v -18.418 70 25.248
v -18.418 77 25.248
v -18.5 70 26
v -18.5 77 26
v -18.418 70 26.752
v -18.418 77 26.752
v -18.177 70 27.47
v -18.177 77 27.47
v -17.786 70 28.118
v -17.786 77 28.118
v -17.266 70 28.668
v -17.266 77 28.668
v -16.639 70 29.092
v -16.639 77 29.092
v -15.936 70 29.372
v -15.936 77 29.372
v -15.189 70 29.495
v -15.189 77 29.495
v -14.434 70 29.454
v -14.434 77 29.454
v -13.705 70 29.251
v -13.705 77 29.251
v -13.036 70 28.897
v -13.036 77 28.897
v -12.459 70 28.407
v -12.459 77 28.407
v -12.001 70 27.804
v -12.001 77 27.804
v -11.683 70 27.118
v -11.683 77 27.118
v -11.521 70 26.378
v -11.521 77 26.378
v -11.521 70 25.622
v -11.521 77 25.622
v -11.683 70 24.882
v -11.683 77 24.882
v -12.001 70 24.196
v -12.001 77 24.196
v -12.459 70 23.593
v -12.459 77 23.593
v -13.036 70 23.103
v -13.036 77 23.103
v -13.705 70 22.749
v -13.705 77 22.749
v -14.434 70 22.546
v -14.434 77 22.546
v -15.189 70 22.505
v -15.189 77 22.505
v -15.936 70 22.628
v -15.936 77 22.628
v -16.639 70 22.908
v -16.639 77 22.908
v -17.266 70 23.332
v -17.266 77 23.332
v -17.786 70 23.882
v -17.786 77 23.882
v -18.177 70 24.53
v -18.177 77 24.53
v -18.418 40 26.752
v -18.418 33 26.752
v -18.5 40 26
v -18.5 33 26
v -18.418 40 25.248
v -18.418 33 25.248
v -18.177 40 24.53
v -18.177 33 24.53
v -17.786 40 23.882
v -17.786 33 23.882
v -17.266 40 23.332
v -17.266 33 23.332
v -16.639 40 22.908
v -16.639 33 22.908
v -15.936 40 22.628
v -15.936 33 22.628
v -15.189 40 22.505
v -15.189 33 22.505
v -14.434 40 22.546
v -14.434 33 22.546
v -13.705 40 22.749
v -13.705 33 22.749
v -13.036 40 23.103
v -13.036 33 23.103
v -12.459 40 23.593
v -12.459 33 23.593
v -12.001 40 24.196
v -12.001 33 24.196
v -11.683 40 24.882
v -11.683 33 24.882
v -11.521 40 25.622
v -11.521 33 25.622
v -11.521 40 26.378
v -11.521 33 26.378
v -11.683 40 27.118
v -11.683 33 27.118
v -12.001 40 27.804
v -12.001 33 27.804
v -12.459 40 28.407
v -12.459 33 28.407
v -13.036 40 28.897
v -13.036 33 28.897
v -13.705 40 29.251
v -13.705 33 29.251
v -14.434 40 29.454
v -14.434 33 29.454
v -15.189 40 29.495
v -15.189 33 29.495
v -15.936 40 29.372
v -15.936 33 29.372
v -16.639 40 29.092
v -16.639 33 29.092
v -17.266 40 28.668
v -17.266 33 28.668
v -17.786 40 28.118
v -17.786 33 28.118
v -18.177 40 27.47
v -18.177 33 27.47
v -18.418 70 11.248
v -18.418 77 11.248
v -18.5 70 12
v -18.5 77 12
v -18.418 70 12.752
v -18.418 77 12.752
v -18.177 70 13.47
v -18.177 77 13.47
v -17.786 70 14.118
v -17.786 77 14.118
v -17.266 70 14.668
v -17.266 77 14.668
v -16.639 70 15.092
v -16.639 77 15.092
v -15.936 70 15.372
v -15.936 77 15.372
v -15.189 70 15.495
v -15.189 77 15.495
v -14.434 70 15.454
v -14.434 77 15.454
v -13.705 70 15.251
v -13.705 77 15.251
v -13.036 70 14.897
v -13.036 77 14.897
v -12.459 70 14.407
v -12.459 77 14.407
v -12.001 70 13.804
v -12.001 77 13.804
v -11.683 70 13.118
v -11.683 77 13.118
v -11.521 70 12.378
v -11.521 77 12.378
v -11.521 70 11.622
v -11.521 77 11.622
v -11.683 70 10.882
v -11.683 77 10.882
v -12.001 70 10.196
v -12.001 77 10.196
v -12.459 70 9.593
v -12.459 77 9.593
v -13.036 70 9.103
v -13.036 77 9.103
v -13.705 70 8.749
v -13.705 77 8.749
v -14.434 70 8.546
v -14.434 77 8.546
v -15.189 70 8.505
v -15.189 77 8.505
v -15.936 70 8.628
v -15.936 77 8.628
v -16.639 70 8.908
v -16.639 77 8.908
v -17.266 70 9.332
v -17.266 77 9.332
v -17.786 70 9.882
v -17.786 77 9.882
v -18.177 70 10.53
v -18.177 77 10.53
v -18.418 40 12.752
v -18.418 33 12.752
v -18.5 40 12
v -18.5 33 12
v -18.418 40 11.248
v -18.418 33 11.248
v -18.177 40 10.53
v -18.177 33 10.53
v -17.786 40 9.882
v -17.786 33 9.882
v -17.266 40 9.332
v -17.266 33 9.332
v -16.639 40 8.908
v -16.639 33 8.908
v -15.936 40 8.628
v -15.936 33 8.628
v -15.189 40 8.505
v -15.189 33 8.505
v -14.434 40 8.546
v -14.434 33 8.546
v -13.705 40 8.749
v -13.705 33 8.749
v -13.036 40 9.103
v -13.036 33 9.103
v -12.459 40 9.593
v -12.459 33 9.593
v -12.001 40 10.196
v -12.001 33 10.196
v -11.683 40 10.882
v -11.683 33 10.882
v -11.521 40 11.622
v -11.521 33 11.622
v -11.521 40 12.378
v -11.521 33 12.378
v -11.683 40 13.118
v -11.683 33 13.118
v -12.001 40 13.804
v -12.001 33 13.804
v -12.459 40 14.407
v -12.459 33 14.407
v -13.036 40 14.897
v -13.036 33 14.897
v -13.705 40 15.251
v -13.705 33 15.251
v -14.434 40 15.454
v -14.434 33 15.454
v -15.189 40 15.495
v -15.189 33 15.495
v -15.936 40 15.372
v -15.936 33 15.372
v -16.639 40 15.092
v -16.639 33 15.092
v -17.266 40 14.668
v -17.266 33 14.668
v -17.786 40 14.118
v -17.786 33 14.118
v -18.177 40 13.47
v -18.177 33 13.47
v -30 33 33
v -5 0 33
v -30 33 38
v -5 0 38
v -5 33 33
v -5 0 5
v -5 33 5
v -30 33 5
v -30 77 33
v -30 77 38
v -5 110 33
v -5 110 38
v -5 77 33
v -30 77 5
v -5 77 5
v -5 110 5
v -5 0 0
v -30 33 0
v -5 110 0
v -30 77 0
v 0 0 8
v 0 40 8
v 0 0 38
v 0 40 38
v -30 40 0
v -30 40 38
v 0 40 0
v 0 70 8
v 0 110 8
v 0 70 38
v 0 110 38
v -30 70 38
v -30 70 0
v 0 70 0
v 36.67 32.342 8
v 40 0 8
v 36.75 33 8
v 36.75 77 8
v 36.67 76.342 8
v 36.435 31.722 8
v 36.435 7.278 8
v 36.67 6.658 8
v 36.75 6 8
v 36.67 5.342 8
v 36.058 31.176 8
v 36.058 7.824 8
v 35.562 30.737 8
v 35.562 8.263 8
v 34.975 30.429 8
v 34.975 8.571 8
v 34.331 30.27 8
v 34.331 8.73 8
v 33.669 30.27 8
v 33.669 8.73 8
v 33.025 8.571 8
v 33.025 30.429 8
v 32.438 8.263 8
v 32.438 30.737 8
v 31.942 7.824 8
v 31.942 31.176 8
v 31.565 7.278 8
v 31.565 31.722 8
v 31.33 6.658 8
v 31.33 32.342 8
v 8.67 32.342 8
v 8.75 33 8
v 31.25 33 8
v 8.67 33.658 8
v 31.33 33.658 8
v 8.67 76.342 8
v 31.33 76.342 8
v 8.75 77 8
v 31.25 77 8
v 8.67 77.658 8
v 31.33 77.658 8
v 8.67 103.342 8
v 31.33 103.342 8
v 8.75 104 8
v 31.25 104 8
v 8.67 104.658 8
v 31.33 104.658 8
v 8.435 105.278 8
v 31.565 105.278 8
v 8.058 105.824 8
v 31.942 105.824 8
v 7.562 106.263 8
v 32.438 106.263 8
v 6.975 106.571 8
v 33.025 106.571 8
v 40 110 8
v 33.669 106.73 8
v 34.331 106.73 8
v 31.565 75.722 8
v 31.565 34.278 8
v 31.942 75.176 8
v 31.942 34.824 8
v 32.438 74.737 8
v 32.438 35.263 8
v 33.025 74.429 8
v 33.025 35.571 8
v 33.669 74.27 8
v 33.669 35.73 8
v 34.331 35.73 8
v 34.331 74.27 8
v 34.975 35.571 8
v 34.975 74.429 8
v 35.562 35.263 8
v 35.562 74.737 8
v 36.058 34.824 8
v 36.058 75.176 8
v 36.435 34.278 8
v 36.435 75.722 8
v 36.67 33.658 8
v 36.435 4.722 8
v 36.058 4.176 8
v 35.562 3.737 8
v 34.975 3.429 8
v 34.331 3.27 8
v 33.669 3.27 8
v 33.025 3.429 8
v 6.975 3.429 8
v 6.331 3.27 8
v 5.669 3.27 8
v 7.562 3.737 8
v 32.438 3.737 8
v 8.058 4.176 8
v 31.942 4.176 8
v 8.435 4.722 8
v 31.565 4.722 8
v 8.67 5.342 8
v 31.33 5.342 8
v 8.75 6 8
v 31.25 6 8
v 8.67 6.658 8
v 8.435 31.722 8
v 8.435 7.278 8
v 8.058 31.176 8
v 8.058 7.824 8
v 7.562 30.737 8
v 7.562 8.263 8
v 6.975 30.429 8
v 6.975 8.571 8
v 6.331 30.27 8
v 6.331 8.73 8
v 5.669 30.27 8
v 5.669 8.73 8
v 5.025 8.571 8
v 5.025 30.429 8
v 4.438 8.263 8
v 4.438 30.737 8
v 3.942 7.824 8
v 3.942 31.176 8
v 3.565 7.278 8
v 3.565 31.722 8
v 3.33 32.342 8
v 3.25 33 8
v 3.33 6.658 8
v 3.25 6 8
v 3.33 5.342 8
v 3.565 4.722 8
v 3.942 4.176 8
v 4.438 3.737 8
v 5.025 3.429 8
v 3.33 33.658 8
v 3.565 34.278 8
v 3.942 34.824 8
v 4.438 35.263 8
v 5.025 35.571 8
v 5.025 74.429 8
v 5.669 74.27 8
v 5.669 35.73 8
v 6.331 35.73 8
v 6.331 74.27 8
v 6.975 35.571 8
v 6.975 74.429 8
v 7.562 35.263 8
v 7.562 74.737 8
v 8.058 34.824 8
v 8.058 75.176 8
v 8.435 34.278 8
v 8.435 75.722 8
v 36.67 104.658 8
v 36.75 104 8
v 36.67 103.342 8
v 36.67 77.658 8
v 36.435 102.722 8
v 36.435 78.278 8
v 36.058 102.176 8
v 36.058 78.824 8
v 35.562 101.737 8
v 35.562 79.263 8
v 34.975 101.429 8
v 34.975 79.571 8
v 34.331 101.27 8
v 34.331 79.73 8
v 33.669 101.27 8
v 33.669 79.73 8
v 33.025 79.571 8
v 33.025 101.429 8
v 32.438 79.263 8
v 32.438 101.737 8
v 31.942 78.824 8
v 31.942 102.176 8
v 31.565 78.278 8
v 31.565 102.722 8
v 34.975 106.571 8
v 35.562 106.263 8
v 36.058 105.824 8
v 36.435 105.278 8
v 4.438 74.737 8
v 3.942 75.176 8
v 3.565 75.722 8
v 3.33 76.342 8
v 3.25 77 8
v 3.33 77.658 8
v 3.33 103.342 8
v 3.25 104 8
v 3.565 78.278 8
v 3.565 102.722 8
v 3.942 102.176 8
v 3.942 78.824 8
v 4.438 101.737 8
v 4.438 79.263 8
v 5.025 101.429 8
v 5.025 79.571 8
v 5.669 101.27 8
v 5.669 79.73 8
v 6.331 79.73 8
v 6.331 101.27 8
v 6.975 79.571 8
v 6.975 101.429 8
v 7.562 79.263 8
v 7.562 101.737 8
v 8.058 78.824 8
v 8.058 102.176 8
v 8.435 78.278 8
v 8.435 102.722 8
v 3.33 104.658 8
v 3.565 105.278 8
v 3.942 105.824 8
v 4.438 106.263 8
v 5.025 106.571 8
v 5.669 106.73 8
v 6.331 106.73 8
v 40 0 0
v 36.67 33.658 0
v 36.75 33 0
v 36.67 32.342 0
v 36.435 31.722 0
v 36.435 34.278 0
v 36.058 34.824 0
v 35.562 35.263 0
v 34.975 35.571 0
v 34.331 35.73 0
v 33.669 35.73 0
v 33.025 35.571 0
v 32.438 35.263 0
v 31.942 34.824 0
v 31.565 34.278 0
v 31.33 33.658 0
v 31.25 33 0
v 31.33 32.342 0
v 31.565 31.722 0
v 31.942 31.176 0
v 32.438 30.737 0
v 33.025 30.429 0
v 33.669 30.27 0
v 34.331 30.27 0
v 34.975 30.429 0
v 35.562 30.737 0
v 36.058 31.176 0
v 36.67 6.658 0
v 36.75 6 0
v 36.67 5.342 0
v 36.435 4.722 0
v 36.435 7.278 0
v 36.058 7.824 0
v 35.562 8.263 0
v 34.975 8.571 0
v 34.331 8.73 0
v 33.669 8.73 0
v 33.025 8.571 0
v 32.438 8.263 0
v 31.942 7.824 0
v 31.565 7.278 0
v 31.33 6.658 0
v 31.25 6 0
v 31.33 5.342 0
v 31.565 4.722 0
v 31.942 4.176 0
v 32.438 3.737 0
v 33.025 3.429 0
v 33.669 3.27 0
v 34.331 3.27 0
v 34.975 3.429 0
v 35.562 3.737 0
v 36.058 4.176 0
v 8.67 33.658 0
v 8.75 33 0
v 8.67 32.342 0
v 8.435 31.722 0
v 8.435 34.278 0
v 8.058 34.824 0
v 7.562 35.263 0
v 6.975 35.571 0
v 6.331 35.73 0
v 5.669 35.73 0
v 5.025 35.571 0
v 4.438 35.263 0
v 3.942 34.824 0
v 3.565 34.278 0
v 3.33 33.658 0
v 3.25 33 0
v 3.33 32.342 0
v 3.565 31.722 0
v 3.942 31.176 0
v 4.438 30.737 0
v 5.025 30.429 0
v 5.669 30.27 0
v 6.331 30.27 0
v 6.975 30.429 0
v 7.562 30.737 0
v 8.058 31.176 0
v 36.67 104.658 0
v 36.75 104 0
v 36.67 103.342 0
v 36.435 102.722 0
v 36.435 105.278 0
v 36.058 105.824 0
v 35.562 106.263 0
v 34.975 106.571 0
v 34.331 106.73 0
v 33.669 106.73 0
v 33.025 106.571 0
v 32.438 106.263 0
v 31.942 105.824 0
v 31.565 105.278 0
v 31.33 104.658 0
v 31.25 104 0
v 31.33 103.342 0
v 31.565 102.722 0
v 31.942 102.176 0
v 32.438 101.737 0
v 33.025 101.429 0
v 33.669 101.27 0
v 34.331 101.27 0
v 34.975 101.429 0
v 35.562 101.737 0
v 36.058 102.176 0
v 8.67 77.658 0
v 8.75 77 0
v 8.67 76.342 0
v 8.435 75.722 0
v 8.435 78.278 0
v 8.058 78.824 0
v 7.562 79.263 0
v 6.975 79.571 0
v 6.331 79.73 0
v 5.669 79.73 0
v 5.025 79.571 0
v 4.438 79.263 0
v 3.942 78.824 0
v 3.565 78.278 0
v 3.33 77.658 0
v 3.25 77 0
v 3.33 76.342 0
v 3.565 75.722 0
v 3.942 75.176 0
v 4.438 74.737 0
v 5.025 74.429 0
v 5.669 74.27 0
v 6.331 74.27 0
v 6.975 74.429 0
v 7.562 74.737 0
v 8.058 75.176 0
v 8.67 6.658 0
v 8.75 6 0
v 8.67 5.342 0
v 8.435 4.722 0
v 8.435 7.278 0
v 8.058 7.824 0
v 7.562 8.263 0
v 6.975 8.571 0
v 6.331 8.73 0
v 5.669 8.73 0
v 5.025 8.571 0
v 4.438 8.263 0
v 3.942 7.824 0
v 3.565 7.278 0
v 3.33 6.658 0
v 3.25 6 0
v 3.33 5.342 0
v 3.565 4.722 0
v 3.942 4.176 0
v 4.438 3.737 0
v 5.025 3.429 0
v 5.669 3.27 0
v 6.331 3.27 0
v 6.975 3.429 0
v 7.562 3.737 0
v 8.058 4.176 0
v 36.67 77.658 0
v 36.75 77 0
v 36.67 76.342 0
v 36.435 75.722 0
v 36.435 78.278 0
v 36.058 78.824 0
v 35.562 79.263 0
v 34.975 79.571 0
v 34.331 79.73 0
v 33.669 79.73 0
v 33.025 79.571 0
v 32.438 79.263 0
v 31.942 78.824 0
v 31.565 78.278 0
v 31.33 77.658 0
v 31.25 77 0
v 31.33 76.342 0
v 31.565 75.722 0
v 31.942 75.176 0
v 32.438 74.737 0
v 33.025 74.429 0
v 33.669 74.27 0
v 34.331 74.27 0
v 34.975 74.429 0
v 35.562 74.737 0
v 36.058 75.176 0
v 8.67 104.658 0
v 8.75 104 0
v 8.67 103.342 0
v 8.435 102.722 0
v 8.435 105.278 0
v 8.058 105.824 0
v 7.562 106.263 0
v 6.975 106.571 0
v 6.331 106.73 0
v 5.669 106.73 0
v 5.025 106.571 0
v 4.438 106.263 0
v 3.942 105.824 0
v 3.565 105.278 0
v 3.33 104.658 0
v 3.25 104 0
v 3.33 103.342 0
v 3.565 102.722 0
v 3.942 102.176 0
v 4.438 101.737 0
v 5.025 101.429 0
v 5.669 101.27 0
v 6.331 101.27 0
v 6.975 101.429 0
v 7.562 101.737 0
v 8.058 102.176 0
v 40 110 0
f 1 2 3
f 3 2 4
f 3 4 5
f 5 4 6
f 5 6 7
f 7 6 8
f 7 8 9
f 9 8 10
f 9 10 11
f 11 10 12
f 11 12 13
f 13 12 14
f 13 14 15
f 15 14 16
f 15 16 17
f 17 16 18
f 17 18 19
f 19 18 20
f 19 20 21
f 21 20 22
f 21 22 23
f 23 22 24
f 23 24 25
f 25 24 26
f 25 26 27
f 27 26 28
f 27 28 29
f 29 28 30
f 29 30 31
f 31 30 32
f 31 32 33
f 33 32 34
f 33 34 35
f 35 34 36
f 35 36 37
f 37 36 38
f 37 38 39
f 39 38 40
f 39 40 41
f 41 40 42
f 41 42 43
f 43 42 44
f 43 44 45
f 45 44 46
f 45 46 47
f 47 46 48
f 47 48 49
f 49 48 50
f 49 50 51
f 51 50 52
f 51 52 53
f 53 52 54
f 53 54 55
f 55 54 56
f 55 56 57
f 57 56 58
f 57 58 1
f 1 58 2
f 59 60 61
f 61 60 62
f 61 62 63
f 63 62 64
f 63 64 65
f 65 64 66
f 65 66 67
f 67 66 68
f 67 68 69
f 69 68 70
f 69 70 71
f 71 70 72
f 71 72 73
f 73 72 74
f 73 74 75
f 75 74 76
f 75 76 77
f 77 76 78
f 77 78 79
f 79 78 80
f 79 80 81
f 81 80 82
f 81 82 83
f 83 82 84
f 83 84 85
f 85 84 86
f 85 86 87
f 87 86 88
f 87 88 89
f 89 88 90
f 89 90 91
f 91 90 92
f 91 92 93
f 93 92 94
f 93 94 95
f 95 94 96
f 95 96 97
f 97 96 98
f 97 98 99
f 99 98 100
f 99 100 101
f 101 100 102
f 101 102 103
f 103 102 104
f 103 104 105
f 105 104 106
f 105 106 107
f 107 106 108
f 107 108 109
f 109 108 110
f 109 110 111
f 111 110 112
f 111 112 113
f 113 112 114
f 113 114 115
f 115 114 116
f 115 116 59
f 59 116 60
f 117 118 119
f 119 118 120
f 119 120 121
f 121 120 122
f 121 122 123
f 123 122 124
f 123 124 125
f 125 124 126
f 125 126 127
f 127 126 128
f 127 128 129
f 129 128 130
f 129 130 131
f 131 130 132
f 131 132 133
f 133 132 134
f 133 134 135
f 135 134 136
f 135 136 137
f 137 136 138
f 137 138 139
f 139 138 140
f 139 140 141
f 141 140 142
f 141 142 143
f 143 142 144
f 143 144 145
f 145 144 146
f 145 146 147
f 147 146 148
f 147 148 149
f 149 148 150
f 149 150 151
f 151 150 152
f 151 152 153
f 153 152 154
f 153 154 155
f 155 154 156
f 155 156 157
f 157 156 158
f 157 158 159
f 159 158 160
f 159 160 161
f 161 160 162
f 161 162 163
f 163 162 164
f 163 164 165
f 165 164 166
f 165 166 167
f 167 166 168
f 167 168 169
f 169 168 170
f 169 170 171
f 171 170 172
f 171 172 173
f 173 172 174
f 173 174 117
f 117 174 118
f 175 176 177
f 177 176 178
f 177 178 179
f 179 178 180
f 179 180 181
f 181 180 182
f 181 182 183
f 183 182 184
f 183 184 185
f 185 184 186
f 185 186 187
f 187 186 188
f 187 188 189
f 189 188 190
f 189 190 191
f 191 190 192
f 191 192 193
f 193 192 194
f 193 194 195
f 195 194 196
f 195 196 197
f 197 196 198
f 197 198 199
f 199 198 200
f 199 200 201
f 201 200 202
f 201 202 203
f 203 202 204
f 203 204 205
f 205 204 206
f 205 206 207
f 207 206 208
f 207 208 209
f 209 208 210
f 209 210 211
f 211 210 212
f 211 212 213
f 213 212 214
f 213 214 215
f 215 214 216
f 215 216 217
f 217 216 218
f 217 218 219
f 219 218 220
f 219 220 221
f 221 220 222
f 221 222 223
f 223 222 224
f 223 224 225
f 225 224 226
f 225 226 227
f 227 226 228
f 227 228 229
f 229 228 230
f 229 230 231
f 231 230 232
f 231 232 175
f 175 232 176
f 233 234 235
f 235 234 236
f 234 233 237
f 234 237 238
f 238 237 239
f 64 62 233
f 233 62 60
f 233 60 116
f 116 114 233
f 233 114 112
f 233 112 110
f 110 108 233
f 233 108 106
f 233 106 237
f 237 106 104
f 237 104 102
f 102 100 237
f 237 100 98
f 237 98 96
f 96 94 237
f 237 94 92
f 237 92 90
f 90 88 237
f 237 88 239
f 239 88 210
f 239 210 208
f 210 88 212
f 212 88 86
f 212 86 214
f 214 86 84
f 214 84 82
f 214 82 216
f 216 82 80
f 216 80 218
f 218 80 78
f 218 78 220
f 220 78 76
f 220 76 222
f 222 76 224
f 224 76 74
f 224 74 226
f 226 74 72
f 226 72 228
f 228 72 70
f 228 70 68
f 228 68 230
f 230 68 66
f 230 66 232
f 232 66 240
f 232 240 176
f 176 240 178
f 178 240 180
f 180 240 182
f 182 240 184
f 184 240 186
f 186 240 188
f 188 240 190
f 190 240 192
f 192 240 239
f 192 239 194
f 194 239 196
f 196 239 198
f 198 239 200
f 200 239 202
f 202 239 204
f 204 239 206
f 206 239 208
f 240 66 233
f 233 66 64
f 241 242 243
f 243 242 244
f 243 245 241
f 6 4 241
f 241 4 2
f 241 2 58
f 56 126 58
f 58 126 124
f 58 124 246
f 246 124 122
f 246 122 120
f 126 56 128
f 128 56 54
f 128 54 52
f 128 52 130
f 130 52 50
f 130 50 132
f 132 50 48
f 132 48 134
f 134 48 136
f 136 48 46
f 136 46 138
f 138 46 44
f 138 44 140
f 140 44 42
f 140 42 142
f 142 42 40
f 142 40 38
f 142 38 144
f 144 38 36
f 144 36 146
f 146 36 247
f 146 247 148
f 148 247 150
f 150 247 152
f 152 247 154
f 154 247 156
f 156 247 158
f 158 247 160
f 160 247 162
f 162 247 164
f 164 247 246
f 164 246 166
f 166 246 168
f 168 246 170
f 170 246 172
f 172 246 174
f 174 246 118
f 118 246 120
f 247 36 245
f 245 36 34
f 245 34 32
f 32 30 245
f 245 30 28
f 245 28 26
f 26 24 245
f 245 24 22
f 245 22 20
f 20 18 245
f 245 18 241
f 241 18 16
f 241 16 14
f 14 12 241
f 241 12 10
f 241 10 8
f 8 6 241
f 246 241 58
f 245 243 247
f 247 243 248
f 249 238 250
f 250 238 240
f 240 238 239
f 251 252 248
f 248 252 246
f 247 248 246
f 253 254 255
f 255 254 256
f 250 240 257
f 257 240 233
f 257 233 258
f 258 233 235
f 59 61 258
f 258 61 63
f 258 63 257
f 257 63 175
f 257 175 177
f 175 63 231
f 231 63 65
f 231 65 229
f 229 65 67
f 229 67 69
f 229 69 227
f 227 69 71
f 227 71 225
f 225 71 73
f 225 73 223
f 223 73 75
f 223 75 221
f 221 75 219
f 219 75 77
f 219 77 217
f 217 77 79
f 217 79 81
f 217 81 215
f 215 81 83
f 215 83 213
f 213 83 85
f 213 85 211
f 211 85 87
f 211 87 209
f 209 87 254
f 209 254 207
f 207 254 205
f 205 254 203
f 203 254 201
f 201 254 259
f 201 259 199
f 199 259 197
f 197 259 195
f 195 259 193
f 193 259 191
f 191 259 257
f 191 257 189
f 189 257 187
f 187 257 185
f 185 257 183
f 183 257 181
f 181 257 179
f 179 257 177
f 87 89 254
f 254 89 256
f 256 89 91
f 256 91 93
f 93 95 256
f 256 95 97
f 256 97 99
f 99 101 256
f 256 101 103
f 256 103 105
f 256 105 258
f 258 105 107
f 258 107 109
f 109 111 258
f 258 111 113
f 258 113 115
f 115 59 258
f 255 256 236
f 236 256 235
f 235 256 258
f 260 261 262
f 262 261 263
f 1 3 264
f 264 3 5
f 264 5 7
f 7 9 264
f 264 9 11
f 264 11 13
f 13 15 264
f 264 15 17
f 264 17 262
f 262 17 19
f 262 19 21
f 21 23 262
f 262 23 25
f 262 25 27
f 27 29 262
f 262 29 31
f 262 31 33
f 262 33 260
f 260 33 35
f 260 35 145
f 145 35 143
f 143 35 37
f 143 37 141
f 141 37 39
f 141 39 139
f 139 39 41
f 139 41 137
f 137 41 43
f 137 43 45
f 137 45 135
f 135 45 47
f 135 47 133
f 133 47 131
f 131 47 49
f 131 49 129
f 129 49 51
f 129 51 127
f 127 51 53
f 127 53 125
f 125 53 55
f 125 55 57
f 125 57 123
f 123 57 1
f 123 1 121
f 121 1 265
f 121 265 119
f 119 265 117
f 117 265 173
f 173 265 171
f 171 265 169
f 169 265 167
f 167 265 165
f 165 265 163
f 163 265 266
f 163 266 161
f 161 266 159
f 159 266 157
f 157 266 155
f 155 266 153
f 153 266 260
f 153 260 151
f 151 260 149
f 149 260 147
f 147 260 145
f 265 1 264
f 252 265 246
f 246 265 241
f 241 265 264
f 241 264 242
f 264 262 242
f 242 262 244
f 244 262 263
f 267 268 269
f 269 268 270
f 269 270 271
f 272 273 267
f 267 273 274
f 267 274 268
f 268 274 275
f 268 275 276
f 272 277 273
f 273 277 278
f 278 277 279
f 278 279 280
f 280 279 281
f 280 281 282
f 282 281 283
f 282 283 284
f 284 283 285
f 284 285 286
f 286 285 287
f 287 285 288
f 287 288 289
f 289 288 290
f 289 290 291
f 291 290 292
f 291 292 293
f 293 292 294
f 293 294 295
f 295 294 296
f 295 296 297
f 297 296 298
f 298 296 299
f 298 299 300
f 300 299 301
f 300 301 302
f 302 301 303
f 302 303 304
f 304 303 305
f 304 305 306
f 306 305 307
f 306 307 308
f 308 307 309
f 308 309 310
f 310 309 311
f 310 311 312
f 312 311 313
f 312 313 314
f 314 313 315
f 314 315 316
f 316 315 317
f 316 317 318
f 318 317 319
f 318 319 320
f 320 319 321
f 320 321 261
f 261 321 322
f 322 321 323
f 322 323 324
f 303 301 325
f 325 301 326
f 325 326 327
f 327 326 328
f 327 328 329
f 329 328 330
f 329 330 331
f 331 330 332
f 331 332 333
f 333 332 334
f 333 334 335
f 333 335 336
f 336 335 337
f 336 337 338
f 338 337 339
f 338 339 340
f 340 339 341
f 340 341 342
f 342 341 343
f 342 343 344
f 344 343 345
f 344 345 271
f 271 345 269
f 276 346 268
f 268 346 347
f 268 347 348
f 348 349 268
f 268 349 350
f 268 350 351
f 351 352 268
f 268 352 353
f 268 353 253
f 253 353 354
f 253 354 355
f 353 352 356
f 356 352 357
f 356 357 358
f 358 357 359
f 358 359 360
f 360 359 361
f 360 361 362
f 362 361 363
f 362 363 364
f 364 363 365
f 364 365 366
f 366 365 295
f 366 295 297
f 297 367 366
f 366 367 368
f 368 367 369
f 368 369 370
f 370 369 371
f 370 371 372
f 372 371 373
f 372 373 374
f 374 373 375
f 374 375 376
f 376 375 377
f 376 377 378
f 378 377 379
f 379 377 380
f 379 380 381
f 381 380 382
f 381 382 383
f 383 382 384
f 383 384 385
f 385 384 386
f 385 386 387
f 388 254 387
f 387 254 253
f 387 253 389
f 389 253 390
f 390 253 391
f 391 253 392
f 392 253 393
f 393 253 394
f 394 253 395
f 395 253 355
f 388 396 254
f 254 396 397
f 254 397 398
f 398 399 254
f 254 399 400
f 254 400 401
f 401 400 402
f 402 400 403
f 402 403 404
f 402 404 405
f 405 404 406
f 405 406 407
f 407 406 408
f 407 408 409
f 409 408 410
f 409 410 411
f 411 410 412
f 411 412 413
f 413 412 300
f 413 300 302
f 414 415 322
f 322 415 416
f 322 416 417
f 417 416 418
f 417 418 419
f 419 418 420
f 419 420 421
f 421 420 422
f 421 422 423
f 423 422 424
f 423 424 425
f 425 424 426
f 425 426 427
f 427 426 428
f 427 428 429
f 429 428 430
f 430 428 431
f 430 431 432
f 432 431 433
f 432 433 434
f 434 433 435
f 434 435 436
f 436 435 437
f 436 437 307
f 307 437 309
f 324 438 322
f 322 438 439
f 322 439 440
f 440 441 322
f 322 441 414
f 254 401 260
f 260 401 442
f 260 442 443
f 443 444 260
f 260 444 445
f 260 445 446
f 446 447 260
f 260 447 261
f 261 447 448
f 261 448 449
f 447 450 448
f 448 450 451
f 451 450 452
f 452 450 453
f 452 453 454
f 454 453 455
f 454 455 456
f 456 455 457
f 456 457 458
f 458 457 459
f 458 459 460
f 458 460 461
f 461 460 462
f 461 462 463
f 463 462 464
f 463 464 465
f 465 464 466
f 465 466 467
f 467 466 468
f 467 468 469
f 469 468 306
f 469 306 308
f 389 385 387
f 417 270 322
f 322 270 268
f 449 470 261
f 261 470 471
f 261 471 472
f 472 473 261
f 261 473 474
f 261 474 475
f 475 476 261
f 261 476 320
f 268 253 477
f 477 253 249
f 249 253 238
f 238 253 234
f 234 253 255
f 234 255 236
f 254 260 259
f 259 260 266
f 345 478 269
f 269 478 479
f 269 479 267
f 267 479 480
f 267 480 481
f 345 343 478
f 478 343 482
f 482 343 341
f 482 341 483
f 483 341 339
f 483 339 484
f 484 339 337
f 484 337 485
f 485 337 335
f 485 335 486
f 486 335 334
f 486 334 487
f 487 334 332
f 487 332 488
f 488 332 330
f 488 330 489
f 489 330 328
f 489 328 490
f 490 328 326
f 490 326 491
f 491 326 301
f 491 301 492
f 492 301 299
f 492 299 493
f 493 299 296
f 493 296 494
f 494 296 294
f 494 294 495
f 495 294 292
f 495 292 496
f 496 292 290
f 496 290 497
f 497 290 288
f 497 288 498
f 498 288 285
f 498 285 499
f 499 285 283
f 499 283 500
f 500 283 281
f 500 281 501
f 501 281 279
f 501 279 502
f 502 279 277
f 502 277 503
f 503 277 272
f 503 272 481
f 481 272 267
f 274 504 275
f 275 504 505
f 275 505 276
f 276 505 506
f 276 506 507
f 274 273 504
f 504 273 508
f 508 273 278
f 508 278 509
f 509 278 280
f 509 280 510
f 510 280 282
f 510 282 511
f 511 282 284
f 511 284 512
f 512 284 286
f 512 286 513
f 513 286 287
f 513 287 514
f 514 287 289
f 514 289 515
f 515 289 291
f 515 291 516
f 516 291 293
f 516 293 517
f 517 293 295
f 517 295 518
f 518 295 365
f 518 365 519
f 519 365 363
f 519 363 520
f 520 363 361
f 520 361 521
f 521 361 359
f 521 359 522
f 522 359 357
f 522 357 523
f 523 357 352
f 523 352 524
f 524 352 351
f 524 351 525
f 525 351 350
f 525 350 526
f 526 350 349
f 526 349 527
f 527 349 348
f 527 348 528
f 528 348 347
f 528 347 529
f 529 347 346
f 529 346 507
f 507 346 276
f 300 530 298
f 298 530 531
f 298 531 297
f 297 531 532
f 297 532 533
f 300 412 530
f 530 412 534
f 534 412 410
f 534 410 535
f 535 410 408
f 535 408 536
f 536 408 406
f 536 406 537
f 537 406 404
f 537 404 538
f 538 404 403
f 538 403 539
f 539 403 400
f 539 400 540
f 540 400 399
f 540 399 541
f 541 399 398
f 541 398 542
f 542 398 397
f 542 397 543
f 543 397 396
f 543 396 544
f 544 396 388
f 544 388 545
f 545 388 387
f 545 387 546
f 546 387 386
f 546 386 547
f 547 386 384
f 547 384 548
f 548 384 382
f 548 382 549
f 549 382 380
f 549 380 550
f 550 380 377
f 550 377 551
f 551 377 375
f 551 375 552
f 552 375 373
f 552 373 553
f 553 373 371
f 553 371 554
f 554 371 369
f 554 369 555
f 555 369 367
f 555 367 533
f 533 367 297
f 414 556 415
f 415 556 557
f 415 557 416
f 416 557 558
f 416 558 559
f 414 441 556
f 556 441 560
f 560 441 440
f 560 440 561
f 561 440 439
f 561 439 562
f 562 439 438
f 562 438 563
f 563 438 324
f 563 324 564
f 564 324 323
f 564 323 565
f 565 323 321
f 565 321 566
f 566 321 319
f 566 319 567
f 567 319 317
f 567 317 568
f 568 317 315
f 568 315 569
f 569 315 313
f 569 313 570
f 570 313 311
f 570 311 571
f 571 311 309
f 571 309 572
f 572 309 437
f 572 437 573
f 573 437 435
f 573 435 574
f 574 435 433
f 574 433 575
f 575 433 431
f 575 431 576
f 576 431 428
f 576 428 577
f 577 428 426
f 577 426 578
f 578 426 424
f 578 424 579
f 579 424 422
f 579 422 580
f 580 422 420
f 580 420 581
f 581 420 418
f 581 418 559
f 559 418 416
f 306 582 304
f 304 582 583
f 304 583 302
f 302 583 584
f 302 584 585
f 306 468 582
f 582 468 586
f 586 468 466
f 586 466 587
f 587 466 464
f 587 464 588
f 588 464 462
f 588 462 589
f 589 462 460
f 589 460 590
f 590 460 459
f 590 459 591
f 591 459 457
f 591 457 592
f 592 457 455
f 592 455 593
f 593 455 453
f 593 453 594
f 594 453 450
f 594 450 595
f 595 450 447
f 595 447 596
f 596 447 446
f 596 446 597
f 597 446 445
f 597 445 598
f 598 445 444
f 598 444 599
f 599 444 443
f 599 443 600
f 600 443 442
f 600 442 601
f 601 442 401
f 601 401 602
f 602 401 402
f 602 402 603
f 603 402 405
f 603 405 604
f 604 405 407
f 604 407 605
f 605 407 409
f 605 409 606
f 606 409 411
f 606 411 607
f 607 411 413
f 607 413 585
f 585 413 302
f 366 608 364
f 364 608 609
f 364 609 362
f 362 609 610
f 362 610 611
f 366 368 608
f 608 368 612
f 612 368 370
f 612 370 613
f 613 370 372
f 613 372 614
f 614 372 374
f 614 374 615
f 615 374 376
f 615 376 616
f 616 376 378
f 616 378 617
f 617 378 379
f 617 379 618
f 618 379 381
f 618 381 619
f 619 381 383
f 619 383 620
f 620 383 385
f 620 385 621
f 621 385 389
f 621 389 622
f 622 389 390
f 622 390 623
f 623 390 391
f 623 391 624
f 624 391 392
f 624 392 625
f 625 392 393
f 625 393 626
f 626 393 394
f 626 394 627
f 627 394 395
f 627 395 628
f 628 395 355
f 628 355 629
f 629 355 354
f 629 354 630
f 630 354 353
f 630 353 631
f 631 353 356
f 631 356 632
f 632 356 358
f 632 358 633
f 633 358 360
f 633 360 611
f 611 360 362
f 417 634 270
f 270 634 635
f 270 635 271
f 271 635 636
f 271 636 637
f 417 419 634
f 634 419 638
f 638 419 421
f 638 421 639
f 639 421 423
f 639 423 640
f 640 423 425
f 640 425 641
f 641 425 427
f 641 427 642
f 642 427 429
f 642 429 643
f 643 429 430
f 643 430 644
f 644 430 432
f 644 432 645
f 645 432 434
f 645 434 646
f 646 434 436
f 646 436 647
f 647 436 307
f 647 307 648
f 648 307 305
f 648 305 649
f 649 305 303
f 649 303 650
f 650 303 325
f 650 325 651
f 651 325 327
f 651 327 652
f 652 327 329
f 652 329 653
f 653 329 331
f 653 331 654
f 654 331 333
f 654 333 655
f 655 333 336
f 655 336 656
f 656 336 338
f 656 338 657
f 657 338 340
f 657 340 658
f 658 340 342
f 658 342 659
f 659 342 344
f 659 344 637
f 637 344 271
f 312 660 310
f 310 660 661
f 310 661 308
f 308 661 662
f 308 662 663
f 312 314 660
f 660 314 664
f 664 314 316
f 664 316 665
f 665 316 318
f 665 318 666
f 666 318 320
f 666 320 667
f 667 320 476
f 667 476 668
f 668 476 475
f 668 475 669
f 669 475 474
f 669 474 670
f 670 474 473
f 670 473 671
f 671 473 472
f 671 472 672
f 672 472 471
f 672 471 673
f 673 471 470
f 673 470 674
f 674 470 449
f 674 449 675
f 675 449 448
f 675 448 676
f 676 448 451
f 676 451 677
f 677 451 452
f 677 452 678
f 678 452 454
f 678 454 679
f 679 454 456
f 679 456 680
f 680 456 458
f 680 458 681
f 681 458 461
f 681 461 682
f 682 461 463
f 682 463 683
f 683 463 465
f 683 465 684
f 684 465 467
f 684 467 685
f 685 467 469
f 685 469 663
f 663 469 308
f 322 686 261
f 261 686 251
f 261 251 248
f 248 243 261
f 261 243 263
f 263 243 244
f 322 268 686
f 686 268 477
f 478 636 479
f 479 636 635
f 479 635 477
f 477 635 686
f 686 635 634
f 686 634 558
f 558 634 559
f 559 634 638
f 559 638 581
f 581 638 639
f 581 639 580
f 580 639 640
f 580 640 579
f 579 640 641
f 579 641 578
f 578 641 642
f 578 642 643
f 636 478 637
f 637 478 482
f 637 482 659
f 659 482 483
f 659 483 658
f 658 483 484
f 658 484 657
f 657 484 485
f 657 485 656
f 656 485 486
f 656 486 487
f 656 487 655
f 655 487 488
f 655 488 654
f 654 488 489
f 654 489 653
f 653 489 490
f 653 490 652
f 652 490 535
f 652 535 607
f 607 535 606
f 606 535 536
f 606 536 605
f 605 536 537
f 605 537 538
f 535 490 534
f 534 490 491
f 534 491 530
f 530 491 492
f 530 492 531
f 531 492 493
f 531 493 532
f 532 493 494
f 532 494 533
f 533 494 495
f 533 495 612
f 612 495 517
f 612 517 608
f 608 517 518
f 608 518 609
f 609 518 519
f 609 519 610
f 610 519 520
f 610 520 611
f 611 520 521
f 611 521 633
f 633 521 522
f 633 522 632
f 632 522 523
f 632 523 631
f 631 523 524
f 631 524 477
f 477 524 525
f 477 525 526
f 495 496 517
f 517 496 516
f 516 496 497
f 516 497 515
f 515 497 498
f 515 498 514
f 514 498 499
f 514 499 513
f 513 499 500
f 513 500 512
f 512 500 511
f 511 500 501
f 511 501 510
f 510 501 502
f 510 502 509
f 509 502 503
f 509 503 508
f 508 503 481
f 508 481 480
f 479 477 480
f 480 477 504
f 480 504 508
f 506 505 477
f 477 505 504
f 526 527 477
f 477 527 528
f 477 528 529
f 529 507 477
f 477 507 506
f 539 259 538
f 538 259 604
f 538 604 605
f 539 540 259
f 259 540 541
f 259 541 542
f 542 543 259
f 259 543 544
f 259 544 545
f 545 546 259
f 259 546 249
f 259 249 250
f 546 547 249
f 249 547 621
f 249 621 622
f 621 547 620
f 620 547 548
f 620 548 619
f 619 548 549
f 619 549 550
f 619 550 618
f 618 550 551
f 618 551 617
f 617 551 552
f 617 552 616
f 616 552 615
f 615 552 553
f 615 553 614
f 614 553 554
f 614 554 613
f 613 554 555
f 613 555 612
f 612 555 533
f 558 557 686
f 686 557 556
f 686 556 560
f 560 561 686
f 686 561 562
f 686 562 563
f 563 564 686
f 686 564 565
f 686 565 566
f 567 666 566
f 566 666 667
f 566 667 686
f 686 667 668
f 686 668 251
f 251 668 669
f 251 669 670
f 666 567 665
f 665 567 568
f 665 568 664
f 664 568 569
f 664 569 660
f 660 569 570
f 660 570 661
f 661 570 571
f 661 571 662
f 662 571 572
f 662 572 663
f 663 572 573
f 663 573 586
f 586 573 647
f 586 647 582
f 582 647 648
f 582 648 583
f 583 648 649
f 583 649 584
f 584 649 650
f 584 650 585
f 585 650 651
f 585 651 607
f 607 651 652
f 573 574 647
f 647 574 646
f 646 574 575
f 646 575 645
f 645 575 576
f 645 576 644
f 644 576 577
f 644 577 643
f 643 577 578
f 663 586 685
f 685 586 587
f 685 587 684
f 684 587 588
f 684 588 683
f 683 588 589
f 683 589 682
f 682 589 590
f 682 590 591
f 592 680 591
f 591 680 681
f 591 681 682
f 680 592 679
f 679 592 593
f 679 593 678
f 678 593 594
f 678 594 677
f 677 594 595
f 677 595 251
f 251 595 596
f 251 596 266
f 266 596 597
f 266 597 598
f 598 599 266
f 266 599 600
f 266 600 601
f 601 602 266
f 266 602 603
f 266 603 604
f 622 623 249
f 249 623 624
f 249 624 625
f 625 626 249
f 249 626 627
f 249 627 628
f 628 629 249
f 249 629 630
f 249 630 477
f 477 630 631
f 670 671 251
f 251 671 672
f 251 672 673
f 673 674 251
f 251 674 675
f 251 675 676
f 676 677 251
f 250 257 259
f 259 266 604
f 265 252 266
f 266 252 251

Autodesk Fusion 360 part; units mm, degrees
sketch "Skizze1" plane through (0, 0, 0) normal (0, 0, 1) x (1, 0, 0)
  line L0 (0, 0) -> (40, 0)
  line L1 (40, 0) -> (40, 110)
  line L2 (40, 110) -> (0, 110)
  line L3 (0, 110) -> (0, 0)
  dimension "d1" = 40
  dimension "d2" = 110
extrude "Extrusion1" add sketch "Skizze1" along normal blind 9
sketch "Skizze2" plane through (0, 0, 9) normal (0, 0, 1) x (-1, 0, 0)
  line L0 (0, -110) -> (0, 0)
  line L1 (0, 0) -> (-40, 0)
  line L2 (-40, 0) -> (-40, -110)
  line L3 (-40, -110) -> (0, -110)
  line L4 (-40, 0) -> (-35, 0)
  line L5 (-35, 0) -> (-35, -6)
  line L6 (-35, -6) -> (-40, -6)
  line L7 (-40, -6) -> (-40, 0)
  line L8 (0, 0) -> (-6, 0)
  line L9 (-6, 0) -> (-6, -6)
  line L10 (-6, -6) -> (0, -6)
  line L11 (0, -6) -> (0, 0)
  line L12 (0, -110) -> (-6, -110)
  line L13 (-6, -110) -> (-6, -104)
  line L14 (-6, -104) -> (0, -104)
  line L15 (0, -104) -> (0, -110)
  line L16 (-40, -110) -> (-34, -110)
  line L17 (-34, -110) -> (-34, -104)
  line L18 (-34, -104) -> (-40, -104)
  line L19 (-40, -104) -> (-40, -110)
  line L20 (-40, 0) -> (-34, 0)
  line L21 (-34, 0) -> (-34, -6)
  line L22 (-34, -6) -> (-40, -6)
  line L23 (-40, -6) -> (-40, 0)
  line L24 (-40, -110) -> (0, -110)
  line L25 (0, -110) -> (0, -71)
  line L26 (0, -71) -> (-40, -71)
  line L27 (-40, -71) -> (-40, -110)
  line L28 (0, 0) -> (-40, 0)
  line L29 (-40, 0) -> (-40, -39)
  line L30 (-40, -39) -> (0, -39)
  line L31 (0, -39) -> (0, 0)
  line L32 (-40, -39) -> (-34, -39)
  line L33 (-34, -39) -> (-34, -33)
  line L34 (-34, -33) -> (-40, -33)
  line L35 (-40, -33) -> (-40, -39)
  line L36 (0, -39) -> (-6, -39)
  line L37 (-6, -39) -> (-6, -33)
  line L38 (-6, -33) -> (0, -33)
  line L39 (0, -33) -> (0, -39)
  line L40 (0, -71) -> (-6, -71)
  line L41 (-6, -71) -> (-6, -77)
  line L42 (-6, -77) -> (0, -77)
  line L43 (0, -77) -> (0, -71)
  line L44 (-40, -71) -> (-34, -71)
  line L45 (-34, -71) -> (-34, -77)
  line L46 (-34, -77) -> (-40, -77)
  line L47 (-40, -77) -> (-40, -71)
  circle A0 centre (-6, -6) radius 2.75
  circle A1 centre (-34, -6) radius 2.75
  circle A2 centre (-6, -33) radius 2.75
  circle A3 centre (-34, -33) radius 2.75
  circle A4 centre (-34, -77) radius 2.75
  circle A5 centre (-6, -77) radius 2.75
  circle A6 centre (-6, -104) radius 2.75
  circle A7 centre (-34, -104) radius 2.75
  dimension "d5" = 6
  dimension "d6" = 6
  dimension "d7" = 6
  dimension "d8" = 6
  dimension "d9" = 6
  dimension "d10" = 6
  dimension "d11" = 6
  dimension "d12" = 6
  dimension "d13" = 6
  dimension "d14" = 40
  dimension "d15" = 39
  dimension "d16" = 40
  dimension "d17" = 39
  dimension "d18" = 6
  dimension "d19" = 6
  dimension "d20" = 6
  dimension "d21" = 6
  dimension "d22" = 6
  dimension "d23" = 6
  dimension "d24" = 6
  dimension "d25" = 6
  dimension "d26" = 5.5
  dimension "d27" = 5.5
  dimension "d28" = 5.5
  dimension "d29" = 5.5
  dimension "d30" = 5.5
  dimension "d31" = 5.5
  dimension "d32" = 5.5
  dimension "d33" = 5.5
extrude "Extrusion2" cut sketch "Skizze2" against normal blind 10 contours L13 L14 A6 | L13 L14 A6 | L41 L42 A5 | L41 L42 A5 | L17 L18 A7 | L17 L18 A7 | L37 L38 A2 | L37 L38 A2 | L45 L46 A4 | L45 L46 A4 | L9 L10 A0 | L9 L10 A0 | L33 L34 A3 | L33 L34 A3 | L6 L21 L22 A1 | L5 L21 L22 A1 | L5 L6 L22 A1
extrude "Extrusion11" cut 1 faces at (24.2083, 48.4605, 9) along direction (0, 0, -1) blind 1
sketch "Skizze10" plane through (0, 0, 0) normal (0, 0, 1) x (1, 0, 0)
  line L0 (0, 0) -> (0, 110)
  line L1 (0, 55) -> (0, 40)
  line L2 (0, 40) -> (-30, 40)
  line L3 (-30, 70) -> (0, 70)
  line L4 (0, 70) -> (0, 40)
  line L5 (-30, 70) -> (0, 70)
  line L6 (0, 70) -> (0, 77)
  line L7 (0, 77) -> (-30, 77)
  line L8 (-30, 77) -> (-30, 70)
  line L9 (-30, 40) -> (0, 40)
  line L10 (0, 40) -> (0, 33)
  line L11 (0, 33) -> (-30, 33)
  line L12 (-30, 33) -> (-30, 40)
  line L13 (0, 77) -> (-5, 77)
  line L14 (-5, 77) -> (-5, 110)
  line L15 (-5, 110) -> (0, 110)
  line L16 (0, 110) -> (0, 77)
  line L17 (0, 33) -> (-5, 33)
  line L18 (-5, 33) -> (-5, 0)
  line L19 (-5, 0) -> (0, 0)
  line L20 (0, 0) -> (0, 33)
  dimension "d69" = 15
  dimension "d70" = 30
  dimension "d71" = 30
  dimension "d72" = 7
  dimension "d73" = 7
extrude "Extrusion12" add sketch "Skizze10" along normal blind 38
sketch "Skizze11" plane through (0, 0, 0) normal (0, 0, 1) x (1, 0, 0)
  line L0 (-5, 0) -> (-5, 33)
  line L1 (-5, 33) -> (-30, 33)
  line L2 (-30, 33) -> (-5, 0)
  line L3 (-5, 110) -> (-5, 77)
  line L4 (-5, 77) -> (-30, 77)
  line L5 (-5, 110) -> (-30, 77)
extrude "Extrusion13" add sketch "Skizze11" along normal blind 5
extrude "Extrusion14" add 2 faces at (-13.3333, 88, 5) (-13.3333, 22, 5) along direction (0, 0, 1) blind 5 from surface at 28
sketch "Skizze12" plane through (0, 33, 0) normal (0, -1, 0) x (1, 0, 0)
  line L0 (-5, 33) -> (-30, 33)
  line L1 (-30, 33) -> (-30, 5)
  line L2 (-30, 5) -> (-5, 5)
  line L3 (-5, 5) -> (-5, 33)
  line L4 (-30, 33) -> (-15, 33)
  line L5 (-15, 33) -> (-15, 5)
  line L6 (-15, 33) -> (-15, 26)
  line L7 (-15, 5) -> (-15, 12)
  circle A0 centre (-15, 12) radius 3.5
  circle A1 centre (-15, 26) radius 3.5
  dimension "d81" = 15
  dimension "d82" = 7
  dimension "d83" = 7
  dimension "d84" = 7
  dimension "d85" = 7
extrude "Extrusion15" cut sketch "Skizze12" against normal blind 95 contours L5 L6 A1 | L5 L6 A1 | L5 L7 A0 | L5 L7 A0
